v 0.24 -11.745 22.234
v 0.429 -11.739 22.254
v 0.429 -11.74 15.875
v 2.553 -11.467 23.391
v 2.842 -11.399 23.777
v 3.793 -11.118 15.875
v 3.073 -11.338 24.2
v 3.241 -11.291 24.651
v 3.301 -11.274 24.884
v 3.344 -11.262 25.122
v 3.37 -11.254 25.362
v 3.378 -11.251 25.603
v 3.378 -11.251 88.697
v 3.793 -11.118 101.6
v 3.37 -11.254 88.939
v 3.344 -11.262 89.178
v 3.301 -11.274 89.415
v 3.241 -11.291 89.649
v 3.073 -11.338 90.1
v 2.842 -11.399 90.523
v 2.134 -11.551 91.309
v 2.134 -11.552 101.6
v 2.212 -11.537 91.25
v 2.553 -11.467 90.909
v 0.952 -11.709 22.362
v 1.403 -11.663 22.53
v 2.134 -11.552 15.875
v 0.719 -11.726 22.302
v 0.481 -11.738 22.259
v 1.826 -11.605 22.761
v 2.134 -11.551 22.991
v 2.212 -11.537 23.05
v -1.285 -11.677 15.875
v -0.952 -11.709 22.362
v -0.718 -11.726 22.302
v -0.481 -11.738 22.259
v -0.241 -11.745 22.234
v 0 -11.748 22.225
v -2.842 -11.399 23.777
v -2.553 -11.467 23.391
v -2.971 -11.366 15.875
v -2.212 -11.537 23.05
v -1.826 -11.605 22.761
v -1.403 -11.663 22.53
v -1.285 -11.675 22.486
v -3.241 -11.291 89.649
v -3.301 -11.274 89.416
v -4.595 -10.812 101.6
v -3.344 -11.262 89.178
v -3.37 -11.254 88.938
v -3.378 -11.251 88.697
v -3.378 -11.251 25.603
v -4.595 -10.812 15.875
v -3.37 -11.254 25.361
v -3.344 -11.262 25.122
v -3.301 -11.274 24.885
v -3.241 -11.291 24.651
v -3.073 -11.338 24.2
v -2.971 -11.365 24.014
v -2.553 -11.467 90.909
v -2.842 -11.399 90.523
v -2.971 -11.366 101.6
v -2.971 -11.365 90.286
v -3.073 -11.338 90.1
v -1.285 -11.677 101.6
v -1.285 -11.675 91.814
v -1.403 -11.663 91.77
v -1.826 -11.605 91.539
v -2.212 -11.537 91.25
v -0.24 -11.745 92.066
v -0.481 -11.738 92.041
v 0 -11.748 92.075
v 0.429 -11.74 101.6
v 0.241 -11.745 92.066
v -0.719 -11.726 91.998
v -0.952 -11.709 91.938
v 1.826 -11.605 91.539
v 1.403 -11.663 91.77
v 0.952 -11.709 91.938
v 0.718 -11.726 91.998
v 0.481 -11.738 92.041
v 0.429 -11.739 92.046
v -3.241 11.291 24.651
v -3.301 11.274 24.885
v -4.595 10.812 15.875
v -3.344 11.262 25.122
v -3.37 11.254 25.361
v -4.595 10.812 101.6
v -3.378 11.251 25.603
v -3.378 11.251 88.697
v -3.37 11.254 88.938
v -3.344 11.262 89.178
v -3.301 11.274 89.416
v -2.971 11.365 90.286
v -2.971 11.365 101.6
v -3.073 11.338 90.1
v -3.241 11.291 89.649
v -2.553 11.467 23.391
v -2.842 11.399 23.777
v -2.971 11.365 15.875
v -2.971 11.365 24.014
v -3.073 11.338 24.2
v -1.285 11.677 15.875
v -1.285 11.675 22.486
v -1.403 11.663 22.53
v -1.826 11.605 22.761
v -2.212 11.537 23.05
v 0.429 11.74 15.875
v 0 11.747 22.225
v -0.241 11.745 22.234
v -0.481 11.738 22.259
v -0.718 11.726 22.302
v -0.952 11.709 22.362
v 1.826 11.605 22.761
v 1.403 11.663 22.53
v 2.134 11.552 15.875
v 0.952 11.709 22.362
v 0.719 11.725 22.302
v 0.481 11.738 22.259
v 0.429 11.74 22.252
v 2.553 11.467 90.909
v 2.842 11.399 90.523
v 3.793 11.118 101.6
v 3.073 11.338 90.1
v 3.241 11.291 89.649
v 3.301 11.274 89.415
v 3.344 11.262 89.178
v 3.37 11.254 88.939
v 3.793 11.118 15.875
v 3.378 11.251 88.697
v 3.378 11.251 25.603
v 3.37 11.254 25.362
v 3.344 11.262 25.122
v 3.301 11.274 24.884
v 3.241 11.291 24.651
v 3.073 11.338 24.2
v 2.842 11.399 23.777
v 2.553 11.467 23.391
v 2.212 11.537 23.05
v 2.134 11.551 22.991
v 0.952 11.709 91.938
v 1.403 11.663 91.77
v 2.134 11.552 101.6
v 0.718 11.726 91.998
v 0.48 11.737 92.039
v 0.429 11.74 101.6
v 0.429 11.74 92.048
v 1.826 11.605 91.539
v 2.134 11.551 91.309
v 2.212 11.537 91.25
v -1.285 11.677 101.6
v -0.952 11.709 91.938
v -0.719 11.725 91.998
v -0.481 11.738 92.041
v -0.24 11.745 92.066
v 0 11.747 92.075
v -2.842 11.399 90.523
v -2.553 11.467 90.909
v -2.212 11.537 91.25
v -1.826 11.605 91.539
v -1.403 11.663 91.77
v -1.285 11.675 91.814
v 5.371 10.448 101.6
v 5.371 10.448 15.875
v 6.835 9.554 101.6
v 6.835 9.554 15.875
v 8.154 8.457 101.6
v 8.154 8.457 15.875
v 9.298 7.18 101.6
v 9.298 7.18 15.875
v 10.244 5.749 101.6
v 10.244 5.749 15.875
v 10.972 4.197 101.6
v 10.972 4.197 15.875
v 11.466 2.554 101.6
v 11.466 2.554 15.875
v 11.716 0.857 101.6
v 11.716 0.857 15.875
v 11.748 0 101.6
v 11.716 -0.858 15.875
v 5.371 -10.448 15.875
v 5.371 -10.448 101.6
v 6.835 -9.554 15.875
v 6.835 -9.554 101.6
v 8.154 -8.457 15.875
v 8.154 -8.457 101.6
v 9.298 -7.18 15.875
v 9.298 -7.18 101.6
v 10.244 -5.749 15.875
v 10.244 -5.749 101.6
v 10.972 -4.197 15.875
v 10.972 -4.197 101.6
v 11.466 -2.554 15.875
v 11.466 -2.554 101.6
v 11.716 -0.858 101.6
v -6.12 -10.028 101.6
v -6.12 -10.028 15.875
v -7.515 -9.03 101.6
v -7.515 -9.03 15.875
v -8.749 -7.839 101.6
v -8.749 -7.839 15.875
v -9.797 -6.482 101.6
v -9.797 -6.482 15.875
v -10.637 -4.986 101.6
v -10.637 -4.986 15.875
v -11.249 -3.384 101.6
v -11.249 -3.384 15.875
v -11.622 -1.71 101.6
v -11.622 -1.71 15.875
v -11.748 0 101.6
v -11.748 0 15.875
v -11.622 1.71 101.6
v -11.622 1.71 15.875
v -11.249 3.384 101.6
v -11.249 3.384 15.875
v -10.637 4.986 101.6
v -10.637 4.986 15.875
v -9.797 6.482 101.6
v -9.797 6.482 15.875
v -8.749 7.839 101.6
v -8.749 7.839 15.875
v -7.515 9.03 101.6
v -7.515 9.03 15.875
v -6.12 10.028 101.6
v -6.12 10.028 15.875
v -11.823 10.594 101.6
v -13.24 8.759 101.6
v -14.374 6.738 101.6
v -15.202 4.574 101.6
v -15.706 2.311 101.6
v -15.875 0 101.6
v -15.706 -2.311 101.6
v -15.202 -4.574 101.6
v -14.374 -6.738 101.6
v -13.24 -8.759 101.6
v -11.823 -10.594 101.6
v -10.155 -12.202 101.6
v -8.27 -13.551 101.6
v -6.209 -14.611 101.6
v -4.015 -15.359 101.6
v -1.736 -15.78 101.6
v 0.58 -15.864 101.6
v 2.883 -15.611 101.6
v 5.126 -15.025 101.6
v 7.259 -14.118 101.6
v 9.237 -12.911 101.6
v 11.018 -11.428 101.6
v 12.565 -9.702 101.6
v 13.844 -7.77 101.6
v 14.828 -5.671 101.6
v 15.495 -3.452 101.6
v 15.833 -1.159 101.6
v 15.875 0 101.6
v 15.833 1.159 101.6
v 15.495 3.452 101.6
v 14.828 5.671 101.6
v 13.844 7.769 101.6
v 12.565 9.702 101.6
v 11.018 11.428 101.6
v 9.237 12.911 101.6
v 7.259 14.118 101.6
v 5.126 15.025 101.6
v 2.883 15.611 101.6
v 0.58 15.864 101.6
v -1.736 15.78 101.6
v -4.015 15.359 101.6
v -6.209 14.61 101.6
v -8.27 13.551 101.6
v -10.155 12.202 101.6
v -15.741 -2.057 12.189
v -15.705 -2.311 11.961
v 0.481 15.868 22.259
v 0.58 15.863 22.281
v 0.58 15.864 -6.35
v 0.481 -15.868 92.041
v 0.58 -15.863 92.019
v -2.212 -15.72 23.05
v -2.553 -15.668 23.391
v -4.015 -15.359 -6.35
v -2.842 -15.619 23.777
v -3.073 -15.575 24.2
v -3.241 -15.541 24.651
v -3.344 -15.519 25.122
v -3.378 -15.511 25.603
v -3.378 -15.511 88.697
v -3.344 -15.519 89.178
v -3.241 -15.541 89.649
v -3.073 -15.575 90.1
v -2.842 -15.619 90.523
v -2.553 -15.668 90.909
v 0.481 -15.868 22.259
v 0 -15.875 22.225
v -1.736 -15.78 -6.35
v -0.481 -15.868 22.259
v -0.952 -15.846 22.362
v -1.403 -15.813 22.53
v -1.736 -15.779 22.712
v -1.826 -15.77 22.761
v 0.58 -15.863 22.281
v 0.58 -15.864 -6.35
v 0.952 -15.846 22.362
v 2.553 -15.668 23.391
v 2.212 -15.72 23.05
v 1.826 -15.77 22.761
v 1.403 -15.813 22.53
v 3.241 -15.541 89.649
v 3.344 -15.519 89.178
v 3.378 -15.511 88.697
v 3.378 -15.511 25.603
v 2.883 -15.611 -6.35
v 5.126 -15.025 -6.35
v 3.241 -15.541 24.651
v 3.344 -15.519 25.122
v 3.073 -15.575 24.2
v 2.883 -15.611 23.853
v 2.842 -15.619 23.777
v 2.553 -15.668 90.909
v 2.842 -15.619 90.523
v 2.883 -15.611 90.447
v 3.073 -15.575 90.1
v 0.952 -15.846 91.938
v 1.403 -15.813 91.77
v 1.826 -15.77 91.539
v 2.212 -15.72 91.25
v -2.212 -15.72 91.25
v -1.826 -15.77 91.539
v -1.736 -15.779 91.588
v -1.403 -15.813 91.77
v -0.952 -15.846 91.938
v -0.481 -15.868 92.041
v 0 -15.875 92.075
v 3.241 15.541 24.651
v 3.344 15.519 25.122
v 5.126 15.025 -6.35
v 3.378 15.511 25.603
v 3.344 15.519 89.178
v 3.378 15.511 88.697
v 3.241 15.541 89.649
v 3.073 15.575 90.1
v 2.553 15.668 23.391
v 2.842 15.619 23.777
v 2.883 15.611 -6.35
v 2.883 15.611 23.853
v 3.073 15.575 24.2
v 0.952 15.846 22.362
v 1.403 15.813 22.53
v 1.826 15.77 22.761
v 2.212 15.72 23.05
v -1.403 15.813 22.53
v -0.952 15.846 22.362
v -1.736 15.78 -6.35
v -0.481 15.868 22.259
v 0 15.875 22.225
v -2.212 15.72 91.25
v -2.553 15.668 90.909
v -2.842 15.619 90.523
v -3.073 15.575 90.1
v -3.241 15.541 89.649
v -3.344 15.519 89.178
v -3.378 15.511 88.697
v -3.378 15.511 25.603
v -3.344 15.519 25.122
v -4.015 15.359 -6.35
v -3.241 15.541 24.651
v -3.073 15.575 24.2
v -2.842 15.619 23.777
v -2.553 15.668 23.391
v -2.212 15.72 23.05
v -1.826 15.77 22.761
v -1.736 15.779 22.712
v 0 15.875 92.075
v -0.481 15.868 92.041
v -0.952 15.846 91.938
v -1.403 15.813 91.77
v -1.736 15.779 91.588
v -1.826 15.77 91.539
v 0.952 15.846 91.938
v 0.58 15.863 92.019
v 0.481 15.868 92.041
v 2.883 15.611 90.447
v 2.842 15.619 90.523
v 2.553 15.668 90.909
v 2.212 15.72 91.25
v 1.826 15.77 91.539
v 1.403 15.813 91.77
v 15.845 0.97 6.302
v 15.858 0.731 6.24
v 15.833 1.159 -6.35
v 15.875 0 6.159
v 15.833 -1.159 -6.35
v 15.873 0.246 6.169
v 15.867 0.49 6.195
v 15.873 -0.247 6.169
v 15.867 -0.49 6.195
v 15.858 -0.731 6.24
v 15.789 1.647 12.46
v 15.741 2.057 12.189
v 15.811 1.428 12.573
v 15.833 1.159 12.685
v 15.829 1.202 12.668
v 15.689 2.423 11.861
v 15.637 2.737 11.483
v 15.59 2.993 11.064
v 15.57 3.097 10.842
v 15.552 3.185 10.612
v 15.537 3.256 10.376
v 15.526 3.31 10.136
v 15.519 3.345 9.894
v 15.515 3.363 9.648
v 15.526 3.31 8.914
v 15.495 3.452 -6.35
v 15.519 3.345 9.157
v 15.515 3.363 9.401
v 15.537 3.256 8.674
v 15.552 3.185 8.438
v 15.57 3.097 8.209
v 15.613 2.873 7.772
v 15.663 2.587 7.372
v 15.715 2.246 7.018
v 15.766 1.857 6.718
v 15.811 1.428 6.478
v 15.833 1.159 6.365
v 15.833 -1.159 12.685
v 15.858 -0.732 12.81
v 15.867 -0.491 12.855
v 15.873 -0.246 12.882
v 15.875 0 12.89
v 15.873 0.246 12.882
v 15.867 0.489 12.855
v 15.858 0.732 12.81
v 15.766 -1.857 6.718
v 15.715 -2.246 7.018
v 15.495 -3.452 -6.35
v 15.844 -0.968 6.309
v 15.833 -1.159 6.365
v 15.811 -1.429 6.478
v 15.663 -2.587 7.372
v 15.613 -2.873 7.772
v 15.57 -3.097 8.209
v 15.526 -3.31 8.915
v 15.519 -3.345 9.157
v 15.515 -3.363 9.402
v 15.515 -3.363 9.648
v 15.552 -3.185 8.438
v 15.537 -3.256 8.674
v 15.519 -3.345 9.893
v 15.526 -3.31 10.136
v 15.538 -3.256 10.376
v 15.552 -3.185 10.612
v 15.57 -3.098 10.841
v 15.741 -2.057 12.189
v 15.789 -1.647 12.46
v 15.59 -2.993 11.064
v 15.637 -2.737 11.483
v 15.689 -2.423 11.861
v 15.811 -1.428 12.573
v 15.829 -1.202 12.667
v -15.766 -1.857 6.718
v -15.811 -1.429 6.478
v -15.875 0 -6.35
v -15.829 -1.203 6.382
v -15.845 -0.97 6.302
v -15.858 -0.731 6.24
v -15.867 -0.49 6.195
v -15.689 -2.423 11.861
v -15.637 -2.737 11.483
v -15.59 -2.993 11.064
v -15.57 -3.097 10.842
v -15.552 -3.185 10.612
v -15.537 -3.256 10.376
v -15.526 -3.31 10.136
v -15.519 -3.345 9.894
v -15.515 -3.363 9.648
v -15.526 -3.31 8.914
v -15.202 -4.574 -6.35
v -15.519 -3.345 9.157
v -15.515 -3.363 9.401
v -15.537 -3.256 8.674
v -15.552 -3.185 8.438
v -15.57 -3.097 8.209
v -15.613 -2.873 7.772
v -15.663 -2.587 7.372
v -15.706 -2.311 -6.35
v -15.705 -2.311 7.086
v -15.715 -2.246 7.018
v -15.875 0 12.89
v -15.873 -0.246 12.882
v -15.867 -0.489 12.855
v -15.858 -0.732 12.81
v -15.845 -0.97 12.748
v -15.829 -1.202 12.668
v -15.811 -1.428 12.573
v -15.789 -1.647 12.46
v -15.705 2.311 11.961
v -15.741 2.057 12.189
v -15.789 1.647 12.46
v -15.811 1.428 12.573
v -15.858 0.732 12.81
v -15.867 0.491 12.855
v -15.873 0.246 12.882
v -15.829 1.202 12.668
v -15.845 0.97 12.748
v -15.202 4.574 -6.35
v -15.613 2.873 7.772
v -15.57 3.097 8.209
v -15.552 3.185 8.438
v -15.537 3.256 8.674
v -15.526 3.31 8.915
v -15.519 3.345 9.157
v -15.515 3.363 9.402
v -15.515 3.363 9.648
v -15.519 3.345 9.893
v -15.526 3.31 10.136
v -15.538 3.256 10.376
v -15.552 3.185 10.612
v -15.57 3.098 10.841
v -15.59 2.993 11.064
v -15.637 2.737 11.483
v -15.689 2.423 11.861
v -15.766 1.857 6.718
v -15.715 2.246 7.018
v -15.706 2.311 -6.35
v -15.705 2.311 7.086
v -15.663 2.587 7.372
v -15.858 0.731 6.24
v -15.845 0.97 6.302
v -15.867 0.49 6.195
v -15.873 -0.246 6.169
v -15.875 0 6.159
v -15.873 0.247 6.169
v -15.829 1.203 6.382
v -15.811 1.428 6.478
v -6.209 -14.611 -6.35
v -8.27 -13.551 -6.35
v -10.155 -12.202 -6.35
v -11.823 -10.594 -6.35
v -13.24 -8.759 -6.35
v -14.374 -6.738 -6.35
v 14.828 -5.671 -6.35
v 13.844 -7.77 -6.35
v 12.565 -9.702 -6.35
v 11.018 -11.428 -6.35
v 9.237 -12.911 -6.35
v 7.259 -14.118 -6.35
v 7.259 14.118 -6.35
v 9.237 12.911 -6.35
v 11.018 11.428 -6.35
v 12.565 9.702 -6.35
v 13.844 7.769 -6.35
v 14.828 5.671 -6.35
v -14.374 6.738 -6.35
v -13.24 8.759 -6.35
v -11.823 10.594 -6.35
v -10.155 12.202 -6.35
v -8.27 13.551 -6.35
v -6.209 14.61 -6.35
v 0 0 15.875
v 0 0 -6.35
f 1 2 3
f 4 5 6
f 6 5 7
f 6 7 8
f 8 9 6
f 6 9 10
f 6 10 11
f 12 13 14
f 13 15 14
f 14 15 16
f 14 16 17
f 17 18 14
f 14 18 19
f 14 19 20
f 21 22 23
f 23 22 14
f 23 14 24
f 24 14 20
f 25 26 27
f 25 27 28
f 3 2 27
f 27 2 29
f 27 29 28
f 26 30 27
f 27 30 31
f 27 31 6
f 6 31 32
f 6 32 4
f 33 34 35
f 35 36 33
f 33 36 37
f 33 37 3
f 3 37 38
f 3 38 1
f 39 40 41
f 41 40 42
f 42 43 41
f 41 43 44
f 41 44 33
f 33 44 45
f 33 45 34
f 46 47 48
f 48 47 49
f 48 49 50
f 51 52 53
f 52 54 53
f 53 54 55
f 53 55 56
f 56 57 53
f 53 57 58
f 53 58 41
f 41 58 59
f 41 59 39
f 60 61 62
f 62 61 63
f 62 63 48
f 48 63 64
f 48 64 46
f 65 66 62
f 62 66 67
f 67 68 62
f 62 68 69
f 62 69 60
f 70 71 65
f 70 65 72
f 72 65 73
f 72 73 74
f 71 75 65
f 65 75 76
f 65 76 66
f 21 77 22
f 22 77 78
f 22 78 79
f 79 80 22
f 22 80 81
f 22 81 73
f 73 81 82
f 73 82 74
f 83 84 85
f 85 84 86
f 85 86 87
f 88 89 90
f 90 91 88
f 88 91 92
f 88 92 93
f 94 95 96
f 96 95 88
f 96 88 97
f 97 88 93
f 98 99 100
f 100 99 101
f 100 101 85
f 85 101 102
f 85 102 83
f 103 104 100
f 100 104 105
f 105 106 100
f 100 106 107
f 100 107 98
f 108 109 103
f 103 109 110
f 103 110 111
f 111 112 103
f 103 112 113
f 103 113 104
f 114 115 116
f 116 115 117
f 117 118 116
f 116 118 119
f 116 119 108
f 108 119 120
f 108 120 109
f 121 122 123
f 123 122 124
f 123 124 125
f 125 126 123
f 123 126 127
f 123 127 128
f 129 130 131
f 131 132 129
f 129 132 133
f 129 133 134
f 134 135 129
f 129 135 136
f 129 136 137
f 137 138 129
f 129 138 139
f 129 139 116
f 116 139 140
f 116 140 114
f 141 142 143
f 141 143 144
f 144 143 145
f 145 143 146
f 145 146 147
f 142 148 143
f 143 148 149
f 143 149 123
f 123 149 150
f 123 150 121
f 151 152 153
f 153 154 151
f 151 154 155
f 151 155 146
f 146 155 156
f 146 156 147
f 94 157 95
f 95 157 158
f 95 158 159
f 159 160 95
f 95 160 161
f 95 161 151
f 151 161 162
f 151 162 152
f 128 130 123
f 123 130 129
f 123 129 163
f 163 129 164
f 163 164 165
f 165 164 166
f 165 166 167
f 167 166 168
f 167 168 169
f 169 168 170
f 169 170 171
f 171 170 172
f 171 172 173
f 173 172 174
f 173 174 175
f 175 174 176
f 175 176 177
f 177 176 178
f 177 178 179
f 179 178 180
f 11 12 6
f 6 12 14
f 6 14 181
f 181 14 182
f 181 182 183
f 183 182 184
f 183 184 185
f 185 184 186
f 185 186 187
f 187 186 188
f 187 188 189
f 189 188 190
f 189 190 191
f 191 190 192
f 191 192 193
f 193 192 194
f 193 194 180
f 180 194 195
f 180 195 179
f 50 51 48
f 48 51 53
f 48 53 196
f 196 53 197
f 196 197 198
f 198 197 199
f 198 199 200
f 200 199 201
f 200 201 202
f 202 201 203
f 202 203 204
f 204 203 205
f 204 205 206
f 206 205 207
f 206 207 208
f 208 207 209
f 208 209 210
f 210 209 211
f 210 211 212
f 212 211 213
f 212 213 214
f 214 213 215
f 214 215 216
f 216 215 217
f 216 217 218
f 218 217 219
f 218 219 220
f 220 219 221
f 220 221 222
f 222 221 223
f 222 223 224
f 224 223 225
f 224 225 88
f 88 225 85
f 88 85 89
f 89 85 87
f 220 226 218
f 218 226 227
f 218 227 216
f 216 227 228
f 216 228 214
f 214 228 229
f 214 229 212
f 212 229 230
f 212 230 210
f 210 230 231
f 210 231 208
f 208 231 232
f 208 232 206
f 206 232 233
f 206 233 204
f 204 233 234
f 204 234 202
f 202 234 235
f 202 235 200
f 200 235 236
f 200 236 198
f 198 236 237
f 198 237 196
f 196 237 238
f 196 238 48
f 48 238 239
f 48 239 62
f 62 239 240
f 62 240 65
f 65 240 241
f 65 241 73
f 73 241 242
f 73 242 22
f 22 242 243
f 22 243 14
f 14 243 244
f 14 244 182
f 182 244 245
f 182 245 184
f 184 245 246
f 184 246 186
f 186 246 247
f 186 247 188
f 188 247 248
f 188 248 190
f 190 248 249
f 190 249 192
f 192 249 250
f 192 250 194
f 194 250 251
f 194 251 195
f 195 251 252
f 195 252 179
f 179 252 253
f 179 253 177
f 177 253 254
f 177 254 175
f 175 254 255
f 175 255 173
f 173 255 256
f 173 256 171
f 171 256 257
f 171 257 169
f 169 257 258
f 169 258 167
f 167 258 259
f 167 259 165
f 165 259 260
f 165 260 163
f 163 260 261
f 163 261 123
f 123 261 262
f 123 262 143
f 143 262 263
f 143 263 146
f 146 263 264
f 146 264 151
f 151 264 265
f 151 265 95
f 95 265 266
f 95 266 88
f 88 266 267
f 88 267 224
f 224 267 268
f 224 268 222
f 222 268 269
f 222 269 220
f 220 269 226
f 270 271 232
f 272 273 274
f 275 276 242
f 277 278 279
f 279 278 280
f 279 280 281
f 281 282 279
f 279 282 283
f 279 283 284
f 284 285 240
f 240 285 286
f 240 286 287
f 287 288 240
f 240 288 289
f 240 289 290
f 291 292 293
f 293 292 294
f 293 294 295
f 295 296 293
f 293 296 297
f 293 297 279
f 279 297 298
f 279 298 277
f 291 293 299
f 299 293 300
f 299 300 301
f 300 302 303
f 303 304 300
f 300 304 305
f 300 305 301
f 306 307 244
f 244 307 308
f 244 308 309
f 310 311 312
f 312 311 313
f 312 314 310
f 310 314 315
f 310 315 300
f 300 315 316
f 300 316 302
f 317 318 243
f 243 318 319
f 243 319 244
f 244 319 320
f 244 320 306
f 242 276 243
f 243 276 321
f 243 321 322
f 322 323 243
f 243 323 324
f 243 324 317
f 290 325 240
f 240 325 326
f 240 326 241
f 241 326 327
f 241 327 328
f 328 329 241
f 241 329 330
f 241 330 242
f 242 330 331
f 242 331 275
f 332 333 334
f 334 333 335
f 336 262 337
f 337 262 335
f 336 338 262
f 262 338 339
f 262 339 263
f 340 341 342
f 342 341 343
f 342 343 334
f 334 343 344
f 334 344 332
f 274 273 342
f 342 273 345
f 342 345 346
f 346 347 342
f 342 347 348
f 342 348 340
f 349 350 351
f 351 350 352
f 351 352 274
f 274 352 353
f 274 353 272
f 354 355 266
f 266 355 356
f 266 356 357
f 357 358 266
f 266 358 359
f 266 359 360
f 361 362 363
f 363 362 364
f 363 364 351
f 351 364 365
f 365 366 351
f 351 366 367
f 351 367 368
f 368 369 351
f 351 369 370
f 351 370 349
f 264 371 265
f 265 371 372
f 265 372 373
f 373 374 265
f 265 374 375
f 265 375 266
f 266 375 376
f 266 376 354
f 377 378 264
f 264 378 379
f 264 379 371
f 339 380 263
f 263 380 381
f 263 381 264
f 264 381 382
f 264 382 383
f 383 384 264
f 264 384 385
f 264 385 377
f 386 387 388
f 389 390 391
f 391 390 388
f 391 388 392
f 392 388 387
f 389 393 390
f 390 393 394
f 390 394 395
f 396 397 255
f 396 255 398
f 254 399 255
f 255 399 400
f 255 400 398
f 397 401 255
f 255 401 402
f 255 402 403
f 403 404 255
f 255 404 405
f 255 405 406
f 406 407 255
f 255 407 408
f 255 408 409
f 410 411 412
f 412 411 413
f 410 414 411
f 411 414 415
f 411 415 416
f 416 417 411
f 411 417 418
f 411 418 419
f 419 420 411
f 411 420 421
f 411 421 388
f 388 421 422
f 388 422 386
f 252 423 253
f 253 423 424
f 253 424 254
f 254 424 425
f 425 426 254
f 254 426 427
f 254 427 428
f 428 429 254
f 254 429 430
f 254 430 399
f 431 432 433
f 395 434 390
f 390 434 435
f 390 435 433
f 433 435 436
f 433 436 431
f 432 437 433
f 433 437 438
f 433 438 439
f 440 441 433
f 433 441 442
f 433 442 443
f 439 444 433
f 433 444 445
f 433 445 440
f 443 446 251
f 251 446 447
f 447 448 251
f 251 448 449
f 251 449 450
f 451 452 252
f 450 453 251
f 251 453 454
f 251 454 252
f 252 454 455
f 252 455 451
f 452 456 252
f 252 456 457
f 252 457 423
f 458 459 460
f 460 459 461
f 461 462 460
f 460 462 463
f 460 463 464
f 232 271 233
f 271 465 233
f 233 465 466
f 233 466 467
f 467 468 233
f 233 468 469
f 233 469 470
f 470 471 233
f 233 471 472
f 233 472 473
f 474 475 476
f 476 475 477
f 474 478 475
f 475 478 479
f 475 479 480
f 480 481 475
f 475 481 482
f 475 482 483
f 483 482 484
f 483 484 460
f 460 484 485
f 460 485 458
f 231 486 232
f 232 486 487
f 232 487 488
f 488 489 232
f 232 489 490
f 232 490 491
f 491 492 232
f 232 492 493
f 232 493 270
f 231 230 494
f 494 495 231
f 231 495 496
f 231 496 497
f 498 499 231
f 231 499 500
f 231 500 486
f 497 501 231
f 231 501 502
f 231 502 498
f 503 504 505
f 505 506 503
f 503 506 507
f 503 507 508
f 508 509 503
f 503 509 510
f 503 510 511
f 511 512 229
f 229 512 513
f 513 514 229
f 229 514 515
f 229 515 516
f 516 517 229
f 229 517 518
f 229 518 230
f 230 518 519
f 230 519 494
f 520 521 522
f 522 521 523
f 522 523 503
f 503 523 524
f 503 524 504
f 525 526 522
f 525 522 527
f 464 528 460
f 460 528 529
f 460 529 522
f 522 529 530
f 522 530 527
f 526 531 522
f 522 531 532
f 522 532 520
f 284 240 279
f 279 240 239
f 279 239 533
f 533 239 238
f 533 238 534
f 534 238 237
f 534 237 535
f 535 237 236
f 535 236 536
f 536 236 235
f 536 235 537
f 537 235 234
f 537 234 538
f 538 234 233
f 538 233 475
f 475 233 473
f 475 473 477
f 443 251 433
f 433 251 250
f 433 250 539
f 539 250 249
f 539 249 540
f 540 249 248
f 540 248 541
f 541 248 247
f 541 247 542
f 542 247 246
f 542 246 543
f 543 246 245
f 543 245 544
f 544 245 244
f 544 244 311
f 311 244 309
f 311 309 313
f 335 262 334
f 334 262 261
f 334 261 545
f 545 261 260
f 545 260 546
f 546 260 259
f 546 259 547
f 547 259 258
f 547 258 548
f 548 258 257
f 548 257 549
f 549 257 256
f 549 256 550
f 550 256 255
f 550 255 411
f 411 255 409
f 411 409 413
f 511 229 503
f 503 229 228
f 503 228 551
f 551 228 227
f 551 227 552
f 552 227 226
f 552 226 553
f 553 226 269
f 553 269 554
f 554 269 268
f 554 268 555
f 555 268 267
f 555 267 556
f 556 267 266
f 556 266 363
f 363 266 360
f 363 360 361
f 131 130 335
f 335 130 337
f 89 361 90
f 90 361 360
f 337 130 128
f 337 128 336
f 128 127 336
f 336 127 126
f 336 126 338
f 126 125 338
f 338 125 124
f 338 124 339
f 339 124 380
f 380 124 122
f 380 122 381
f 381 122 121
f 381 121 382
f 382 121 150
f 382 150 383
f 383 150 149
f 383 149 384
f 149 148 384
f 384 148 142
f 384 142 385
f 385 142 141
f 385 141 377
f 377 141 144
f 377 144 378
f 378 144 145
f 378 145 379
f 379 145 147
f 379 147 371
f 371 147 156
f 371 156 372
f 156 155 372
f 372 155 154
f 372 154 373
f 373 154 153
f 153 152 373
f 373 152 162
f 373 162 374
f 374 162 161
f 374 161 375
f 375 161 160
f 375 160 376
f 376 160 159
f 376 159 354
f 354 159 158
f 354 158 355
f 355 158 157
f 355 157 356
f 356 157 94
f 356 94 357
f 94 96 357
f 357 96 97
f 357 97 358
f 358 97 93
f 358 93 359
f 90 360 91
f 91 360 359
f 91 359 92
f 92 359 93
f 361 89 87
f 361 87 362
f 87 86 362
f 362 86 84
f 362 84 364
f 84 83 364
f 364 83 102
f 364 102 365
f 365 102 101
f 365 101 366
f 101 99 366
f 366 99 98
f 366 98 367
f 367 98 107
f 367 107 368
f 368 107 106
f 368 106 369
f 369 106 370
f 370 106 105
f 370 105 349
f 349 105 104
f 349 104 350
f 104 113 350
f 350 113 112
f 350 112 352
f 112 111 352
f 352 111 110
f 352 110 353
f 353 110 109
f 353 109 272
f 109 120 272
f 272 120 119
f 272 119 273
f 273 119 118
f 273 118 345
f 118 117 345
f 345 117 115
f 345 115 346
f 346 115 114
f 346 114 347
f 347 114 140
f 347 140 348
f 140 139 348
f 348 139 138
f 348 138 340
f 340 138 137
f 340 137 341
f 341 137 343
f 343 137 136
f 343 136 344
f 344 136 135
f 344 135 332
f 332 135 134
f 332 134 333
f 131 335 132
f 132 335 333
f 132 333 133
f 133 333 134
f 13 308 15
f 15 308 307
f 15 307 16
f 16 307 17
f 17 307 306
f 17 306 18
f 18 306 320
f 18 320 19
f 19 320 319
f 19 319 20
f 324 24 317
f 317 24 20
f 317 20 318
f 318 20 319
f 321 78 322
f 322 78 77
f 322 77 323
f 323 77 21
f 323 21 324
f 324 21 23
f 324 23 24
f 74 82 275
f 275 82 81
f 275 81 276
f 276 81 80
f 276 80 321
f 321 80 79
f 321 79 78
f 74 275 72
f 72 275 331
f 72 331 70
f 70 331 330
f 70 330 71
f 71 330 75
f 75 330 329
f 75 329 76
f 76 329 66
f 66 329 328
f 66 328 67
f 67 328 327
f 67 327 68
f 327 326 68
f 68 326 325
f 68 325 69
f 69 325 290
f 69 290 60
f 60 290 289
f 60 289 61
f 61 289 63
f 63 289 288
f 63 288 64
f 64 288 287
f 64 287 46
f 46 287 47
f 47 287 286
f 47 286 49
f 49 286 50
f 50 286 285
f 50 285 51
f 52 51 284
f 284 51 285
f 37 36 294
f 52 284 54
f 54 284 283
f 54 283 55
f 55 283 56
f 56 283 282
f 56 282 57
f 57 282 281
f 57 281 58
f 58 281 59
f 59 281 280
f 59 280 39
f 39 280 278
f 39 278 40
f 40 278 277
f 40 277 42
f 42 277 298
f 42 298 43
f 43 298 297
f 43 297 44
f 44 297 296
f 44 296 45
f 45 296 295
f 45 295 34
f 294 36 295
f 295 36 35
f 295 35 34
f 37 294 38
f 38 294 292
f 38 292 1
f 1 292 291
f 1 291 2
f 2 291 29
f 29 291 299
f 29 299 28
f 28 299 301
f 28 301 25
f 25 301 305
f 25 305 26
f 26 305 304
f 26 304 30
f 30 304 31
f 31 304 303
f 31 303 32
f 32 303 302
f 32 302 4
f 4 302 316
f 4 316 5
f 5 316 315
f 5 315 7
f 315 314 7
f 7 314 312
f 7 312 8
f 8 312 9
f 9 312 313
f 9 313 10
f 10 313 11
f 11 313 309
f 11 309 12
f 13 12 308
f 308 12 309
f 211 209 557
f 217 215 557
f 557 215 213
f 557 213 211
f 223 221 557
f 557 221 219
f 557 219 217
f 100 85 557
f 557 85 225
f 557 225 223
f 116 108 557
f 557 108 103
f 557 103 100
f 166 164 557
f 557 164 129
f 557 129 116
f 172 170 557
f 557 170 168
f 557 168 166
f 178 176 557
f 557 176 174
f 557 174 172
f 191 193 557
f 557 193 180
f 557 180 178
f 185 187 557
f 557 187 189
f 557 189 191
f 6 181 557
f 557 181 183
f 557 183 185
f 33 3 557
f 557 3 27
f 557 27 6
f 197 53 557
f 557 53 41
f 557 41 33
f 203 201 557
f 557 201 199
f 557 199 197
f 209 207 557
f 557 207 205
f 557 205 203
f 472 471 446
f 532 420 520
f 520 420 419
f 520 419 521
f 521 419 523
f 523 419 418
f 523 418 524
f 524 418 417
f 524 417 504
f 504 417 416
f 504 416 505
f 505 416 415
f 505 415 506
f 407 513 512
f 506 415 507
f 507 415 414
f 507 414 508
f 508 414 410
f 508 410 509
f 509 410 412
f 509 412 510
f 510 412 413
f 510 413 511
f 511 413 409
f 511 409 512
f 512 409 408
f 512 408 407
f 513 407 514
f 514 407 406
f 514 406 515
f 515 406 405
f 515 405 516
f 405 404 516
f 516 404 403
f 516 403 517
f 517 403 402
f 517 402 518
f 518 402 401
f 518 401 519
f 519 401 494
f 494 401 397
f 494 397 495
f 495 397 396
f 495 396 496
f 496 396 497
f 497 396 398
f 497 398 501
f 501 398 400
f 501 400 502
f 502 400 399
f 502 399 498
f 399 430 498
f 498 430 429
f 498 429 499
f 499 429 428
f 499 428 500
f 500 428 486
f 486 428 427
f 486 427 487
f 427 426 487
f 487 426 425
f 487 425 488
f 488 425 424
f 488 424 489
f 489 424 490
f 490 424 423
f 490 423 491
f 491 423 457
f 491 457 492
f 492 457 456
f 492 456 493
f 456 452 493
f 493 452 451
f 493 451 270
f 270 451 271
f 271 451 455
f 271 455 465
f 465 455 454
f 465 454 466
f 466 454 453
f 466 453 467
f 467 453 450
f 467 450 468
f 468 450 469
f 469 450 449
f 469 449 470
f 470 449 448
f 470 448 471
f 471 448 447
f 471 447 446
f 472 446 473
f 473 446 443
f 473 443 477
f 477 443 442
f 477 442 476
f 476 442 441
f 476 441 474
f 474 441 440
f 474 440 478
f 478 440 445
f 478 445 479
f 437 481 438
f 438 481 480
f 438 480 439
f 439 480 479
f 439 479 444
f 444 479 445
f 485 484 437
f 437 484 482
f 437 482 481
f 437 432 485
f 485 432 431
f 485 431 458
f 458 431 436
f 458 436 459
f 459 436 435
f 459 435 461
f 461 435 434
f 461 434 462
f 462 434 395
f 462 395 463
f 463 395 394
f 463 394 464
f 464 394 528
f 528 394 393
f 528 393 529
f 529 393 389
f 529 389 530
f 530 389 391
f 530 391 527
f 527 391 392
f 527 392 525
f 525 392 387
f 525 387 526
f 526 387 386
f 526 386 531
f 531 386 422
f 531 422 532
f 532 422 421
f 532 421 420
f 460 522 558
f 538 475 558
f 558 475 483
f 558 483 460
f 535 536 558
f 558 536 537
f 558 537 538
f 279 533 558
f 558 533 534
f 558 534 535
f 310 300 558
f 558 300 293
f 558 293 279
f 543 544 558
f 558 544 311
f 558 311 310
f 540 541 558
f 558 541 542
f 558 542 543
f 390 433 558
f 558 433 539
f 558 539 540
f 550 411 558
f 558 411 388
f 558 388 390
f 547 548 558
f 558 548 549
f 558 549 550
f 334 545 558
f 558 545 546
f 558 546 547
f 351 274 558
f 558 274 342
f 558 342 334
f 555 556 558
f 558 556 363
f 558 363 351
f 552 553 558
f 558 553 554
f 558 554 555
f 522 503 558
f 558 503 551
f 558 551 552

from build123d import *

# Parameters (mm, degrees)
SKETCH1_R                   = 15.875
SKETCH1_R_2                 = 11.7475
BOSS_EXTRUDE1_DEPTH         = 101.6
F_1_4_START                 = 10
F_1_4_CLEARANCE_SLOT1_DEPTH = 7
CUT_EXTRUDE1_REACH          = 106.051
CUT_EXTRUDE1_END_RADIUS     = 15.875
SKETCH7_R                   = 15.875
BOSS_EXTRUDE2_DEPTH         = 15.875
CUT_EXTRUDE3_DEPTH          = 105.050907141
CUT_EXTRUDE3_DEPTH_BACK     = 105.050907141
SKETCH6_R                   = 3.3655
BOSS_EXTRUDE3_START         = 6.35
SKETCH8_R                   = 15.875
BOSS_EXTRUDE3_DEPTH         = 6.35


with BuildPart() as part:
    # Sketch1 → Boss-Extrude1 (new body)
    with BuildSketch(Plane.XY):
        Circle(SKETCH1_R)
        Circle(SKETCH1_R_2, mode=Mode.SUBTRACT)
    extrude(amount=BOSS_EXTRUDE1_DEPTH)

    # 1/4 Clearance Slot1: read off the stored shape, not the designer's step
    # 1/4 Clearance Slot1 outline → 1/4 Clearance Slot1 (cut)
    with BuildSketch(Plane(origin=(0, 0, 0), x_dir=(1, 0, 0), z_dir=(0, 1, 0)).offset(F_1_4_START)):
        with BuildLine():
            Line((3.3782, -88.6968), (3.3782, -25.6032))
            ThreePointArc((3.3782, -25.6032), (0, -22.225), (-3.3782, -25.6032))
            Line((-3.3782, -25.6032), (-3.3782, -88.6968))
            ThreePointArc((-3.3782, -88.6968), (0, -92.075), (3.3782, -88.6968))
        make_face()
    extrude(amount=F_1_4_CLEARANCE_SLOT1_DEPTH, mode=Mode.SUBTRACT)

    # Cut-Extrude1: up to this cylinder (the profile starts inside it)
    cut_extrude1_end = Plane(origin=(0, 0, 57.15), z_dir=(0, 0, -1)) * Cylinder(CUT_EXTRUDE1_END_RADIUS, 244.852, mode=Mode.PRIVATE)
    # Sketch4 → Cut-Extrude1 (cut, up to the surface)
    with BuildSketch(Plane(origin=(0, 0, 0), x_dir=(1, 0, 0), z_dir=(0, 1, 0)), mode=Mode.PRIVATE) as cut_extrude1_sk1:
        with BuildLine():
            Line((-3.3782, -88.6968), (-3.3782, -25.6032))
            ThreePointArc((-3.3782, -25.6032), (0, -22.225), (3.3782, -25.6032))
            Line((3.3782, -25.6032), (3.3782, -88.6968))
            ThreePointArc((3.3782, -88.6968), (0, -92.075), (-3.3782, -88.6968))
        make_face()
    cut_extrude1_tool1 = extrude(cut_extrude1_sk1.sketch, amount=-CUT_EXTRUDE1_REACH, mode=Mode.PRIVATE) & cut_extrude1_end
    add(cut_extrude1_tool1.solids().sort_by_distance((0, 0, 57.15))[0], mode=Mode.SUBTRACT)

    # Sketch7 → Boss-Extrude2 (add)
    with BuildSketch(Plane(origin=(0, 0, 0), x_dir=(-1, 0, 0), z_dir=(0, 0, -1))):
        with Locations(Location((0, 0, 0), (0, 0, 180))):
            Circle(SKETCH7_R)
    extrude(amount=-BOSS_EXTRUDE2_DEPTH)

    # Sketch6 → Cut-Extrude3 (cut, two sides: drawn at the far end of the back side and taken through both)
    with BuildSketch(Plane(origin=(0, 0, 0), x_dir=(0, 0, -1), z_dir=(1, 0, 0)).offset(-CUT_EXTRUDE3_DEPTH_BACK)):
        with Locations((-9.525, 0)):
            Circle(SKETCH6_R)
    extrude(amount=CUT_EXTRUDE3_DEPTH + CUT_EXTRUDE3_DEPTH_BACK, mode=Mode.SUBTRACT)

    # Sketch8 → Boss-Extrude3 (add)
    with BuildSketch(Plane(origin=(0, 0, 0), x_dir=(-1, 0, 0), z_dir=(0, 0, -1)).offset(BOSS_EXTRUDE3_START)):
        Circle(SKETCH8_R)
    extrude(amount=-BOSS_EXTRUDE3_DEPTH)


solid = part.part
